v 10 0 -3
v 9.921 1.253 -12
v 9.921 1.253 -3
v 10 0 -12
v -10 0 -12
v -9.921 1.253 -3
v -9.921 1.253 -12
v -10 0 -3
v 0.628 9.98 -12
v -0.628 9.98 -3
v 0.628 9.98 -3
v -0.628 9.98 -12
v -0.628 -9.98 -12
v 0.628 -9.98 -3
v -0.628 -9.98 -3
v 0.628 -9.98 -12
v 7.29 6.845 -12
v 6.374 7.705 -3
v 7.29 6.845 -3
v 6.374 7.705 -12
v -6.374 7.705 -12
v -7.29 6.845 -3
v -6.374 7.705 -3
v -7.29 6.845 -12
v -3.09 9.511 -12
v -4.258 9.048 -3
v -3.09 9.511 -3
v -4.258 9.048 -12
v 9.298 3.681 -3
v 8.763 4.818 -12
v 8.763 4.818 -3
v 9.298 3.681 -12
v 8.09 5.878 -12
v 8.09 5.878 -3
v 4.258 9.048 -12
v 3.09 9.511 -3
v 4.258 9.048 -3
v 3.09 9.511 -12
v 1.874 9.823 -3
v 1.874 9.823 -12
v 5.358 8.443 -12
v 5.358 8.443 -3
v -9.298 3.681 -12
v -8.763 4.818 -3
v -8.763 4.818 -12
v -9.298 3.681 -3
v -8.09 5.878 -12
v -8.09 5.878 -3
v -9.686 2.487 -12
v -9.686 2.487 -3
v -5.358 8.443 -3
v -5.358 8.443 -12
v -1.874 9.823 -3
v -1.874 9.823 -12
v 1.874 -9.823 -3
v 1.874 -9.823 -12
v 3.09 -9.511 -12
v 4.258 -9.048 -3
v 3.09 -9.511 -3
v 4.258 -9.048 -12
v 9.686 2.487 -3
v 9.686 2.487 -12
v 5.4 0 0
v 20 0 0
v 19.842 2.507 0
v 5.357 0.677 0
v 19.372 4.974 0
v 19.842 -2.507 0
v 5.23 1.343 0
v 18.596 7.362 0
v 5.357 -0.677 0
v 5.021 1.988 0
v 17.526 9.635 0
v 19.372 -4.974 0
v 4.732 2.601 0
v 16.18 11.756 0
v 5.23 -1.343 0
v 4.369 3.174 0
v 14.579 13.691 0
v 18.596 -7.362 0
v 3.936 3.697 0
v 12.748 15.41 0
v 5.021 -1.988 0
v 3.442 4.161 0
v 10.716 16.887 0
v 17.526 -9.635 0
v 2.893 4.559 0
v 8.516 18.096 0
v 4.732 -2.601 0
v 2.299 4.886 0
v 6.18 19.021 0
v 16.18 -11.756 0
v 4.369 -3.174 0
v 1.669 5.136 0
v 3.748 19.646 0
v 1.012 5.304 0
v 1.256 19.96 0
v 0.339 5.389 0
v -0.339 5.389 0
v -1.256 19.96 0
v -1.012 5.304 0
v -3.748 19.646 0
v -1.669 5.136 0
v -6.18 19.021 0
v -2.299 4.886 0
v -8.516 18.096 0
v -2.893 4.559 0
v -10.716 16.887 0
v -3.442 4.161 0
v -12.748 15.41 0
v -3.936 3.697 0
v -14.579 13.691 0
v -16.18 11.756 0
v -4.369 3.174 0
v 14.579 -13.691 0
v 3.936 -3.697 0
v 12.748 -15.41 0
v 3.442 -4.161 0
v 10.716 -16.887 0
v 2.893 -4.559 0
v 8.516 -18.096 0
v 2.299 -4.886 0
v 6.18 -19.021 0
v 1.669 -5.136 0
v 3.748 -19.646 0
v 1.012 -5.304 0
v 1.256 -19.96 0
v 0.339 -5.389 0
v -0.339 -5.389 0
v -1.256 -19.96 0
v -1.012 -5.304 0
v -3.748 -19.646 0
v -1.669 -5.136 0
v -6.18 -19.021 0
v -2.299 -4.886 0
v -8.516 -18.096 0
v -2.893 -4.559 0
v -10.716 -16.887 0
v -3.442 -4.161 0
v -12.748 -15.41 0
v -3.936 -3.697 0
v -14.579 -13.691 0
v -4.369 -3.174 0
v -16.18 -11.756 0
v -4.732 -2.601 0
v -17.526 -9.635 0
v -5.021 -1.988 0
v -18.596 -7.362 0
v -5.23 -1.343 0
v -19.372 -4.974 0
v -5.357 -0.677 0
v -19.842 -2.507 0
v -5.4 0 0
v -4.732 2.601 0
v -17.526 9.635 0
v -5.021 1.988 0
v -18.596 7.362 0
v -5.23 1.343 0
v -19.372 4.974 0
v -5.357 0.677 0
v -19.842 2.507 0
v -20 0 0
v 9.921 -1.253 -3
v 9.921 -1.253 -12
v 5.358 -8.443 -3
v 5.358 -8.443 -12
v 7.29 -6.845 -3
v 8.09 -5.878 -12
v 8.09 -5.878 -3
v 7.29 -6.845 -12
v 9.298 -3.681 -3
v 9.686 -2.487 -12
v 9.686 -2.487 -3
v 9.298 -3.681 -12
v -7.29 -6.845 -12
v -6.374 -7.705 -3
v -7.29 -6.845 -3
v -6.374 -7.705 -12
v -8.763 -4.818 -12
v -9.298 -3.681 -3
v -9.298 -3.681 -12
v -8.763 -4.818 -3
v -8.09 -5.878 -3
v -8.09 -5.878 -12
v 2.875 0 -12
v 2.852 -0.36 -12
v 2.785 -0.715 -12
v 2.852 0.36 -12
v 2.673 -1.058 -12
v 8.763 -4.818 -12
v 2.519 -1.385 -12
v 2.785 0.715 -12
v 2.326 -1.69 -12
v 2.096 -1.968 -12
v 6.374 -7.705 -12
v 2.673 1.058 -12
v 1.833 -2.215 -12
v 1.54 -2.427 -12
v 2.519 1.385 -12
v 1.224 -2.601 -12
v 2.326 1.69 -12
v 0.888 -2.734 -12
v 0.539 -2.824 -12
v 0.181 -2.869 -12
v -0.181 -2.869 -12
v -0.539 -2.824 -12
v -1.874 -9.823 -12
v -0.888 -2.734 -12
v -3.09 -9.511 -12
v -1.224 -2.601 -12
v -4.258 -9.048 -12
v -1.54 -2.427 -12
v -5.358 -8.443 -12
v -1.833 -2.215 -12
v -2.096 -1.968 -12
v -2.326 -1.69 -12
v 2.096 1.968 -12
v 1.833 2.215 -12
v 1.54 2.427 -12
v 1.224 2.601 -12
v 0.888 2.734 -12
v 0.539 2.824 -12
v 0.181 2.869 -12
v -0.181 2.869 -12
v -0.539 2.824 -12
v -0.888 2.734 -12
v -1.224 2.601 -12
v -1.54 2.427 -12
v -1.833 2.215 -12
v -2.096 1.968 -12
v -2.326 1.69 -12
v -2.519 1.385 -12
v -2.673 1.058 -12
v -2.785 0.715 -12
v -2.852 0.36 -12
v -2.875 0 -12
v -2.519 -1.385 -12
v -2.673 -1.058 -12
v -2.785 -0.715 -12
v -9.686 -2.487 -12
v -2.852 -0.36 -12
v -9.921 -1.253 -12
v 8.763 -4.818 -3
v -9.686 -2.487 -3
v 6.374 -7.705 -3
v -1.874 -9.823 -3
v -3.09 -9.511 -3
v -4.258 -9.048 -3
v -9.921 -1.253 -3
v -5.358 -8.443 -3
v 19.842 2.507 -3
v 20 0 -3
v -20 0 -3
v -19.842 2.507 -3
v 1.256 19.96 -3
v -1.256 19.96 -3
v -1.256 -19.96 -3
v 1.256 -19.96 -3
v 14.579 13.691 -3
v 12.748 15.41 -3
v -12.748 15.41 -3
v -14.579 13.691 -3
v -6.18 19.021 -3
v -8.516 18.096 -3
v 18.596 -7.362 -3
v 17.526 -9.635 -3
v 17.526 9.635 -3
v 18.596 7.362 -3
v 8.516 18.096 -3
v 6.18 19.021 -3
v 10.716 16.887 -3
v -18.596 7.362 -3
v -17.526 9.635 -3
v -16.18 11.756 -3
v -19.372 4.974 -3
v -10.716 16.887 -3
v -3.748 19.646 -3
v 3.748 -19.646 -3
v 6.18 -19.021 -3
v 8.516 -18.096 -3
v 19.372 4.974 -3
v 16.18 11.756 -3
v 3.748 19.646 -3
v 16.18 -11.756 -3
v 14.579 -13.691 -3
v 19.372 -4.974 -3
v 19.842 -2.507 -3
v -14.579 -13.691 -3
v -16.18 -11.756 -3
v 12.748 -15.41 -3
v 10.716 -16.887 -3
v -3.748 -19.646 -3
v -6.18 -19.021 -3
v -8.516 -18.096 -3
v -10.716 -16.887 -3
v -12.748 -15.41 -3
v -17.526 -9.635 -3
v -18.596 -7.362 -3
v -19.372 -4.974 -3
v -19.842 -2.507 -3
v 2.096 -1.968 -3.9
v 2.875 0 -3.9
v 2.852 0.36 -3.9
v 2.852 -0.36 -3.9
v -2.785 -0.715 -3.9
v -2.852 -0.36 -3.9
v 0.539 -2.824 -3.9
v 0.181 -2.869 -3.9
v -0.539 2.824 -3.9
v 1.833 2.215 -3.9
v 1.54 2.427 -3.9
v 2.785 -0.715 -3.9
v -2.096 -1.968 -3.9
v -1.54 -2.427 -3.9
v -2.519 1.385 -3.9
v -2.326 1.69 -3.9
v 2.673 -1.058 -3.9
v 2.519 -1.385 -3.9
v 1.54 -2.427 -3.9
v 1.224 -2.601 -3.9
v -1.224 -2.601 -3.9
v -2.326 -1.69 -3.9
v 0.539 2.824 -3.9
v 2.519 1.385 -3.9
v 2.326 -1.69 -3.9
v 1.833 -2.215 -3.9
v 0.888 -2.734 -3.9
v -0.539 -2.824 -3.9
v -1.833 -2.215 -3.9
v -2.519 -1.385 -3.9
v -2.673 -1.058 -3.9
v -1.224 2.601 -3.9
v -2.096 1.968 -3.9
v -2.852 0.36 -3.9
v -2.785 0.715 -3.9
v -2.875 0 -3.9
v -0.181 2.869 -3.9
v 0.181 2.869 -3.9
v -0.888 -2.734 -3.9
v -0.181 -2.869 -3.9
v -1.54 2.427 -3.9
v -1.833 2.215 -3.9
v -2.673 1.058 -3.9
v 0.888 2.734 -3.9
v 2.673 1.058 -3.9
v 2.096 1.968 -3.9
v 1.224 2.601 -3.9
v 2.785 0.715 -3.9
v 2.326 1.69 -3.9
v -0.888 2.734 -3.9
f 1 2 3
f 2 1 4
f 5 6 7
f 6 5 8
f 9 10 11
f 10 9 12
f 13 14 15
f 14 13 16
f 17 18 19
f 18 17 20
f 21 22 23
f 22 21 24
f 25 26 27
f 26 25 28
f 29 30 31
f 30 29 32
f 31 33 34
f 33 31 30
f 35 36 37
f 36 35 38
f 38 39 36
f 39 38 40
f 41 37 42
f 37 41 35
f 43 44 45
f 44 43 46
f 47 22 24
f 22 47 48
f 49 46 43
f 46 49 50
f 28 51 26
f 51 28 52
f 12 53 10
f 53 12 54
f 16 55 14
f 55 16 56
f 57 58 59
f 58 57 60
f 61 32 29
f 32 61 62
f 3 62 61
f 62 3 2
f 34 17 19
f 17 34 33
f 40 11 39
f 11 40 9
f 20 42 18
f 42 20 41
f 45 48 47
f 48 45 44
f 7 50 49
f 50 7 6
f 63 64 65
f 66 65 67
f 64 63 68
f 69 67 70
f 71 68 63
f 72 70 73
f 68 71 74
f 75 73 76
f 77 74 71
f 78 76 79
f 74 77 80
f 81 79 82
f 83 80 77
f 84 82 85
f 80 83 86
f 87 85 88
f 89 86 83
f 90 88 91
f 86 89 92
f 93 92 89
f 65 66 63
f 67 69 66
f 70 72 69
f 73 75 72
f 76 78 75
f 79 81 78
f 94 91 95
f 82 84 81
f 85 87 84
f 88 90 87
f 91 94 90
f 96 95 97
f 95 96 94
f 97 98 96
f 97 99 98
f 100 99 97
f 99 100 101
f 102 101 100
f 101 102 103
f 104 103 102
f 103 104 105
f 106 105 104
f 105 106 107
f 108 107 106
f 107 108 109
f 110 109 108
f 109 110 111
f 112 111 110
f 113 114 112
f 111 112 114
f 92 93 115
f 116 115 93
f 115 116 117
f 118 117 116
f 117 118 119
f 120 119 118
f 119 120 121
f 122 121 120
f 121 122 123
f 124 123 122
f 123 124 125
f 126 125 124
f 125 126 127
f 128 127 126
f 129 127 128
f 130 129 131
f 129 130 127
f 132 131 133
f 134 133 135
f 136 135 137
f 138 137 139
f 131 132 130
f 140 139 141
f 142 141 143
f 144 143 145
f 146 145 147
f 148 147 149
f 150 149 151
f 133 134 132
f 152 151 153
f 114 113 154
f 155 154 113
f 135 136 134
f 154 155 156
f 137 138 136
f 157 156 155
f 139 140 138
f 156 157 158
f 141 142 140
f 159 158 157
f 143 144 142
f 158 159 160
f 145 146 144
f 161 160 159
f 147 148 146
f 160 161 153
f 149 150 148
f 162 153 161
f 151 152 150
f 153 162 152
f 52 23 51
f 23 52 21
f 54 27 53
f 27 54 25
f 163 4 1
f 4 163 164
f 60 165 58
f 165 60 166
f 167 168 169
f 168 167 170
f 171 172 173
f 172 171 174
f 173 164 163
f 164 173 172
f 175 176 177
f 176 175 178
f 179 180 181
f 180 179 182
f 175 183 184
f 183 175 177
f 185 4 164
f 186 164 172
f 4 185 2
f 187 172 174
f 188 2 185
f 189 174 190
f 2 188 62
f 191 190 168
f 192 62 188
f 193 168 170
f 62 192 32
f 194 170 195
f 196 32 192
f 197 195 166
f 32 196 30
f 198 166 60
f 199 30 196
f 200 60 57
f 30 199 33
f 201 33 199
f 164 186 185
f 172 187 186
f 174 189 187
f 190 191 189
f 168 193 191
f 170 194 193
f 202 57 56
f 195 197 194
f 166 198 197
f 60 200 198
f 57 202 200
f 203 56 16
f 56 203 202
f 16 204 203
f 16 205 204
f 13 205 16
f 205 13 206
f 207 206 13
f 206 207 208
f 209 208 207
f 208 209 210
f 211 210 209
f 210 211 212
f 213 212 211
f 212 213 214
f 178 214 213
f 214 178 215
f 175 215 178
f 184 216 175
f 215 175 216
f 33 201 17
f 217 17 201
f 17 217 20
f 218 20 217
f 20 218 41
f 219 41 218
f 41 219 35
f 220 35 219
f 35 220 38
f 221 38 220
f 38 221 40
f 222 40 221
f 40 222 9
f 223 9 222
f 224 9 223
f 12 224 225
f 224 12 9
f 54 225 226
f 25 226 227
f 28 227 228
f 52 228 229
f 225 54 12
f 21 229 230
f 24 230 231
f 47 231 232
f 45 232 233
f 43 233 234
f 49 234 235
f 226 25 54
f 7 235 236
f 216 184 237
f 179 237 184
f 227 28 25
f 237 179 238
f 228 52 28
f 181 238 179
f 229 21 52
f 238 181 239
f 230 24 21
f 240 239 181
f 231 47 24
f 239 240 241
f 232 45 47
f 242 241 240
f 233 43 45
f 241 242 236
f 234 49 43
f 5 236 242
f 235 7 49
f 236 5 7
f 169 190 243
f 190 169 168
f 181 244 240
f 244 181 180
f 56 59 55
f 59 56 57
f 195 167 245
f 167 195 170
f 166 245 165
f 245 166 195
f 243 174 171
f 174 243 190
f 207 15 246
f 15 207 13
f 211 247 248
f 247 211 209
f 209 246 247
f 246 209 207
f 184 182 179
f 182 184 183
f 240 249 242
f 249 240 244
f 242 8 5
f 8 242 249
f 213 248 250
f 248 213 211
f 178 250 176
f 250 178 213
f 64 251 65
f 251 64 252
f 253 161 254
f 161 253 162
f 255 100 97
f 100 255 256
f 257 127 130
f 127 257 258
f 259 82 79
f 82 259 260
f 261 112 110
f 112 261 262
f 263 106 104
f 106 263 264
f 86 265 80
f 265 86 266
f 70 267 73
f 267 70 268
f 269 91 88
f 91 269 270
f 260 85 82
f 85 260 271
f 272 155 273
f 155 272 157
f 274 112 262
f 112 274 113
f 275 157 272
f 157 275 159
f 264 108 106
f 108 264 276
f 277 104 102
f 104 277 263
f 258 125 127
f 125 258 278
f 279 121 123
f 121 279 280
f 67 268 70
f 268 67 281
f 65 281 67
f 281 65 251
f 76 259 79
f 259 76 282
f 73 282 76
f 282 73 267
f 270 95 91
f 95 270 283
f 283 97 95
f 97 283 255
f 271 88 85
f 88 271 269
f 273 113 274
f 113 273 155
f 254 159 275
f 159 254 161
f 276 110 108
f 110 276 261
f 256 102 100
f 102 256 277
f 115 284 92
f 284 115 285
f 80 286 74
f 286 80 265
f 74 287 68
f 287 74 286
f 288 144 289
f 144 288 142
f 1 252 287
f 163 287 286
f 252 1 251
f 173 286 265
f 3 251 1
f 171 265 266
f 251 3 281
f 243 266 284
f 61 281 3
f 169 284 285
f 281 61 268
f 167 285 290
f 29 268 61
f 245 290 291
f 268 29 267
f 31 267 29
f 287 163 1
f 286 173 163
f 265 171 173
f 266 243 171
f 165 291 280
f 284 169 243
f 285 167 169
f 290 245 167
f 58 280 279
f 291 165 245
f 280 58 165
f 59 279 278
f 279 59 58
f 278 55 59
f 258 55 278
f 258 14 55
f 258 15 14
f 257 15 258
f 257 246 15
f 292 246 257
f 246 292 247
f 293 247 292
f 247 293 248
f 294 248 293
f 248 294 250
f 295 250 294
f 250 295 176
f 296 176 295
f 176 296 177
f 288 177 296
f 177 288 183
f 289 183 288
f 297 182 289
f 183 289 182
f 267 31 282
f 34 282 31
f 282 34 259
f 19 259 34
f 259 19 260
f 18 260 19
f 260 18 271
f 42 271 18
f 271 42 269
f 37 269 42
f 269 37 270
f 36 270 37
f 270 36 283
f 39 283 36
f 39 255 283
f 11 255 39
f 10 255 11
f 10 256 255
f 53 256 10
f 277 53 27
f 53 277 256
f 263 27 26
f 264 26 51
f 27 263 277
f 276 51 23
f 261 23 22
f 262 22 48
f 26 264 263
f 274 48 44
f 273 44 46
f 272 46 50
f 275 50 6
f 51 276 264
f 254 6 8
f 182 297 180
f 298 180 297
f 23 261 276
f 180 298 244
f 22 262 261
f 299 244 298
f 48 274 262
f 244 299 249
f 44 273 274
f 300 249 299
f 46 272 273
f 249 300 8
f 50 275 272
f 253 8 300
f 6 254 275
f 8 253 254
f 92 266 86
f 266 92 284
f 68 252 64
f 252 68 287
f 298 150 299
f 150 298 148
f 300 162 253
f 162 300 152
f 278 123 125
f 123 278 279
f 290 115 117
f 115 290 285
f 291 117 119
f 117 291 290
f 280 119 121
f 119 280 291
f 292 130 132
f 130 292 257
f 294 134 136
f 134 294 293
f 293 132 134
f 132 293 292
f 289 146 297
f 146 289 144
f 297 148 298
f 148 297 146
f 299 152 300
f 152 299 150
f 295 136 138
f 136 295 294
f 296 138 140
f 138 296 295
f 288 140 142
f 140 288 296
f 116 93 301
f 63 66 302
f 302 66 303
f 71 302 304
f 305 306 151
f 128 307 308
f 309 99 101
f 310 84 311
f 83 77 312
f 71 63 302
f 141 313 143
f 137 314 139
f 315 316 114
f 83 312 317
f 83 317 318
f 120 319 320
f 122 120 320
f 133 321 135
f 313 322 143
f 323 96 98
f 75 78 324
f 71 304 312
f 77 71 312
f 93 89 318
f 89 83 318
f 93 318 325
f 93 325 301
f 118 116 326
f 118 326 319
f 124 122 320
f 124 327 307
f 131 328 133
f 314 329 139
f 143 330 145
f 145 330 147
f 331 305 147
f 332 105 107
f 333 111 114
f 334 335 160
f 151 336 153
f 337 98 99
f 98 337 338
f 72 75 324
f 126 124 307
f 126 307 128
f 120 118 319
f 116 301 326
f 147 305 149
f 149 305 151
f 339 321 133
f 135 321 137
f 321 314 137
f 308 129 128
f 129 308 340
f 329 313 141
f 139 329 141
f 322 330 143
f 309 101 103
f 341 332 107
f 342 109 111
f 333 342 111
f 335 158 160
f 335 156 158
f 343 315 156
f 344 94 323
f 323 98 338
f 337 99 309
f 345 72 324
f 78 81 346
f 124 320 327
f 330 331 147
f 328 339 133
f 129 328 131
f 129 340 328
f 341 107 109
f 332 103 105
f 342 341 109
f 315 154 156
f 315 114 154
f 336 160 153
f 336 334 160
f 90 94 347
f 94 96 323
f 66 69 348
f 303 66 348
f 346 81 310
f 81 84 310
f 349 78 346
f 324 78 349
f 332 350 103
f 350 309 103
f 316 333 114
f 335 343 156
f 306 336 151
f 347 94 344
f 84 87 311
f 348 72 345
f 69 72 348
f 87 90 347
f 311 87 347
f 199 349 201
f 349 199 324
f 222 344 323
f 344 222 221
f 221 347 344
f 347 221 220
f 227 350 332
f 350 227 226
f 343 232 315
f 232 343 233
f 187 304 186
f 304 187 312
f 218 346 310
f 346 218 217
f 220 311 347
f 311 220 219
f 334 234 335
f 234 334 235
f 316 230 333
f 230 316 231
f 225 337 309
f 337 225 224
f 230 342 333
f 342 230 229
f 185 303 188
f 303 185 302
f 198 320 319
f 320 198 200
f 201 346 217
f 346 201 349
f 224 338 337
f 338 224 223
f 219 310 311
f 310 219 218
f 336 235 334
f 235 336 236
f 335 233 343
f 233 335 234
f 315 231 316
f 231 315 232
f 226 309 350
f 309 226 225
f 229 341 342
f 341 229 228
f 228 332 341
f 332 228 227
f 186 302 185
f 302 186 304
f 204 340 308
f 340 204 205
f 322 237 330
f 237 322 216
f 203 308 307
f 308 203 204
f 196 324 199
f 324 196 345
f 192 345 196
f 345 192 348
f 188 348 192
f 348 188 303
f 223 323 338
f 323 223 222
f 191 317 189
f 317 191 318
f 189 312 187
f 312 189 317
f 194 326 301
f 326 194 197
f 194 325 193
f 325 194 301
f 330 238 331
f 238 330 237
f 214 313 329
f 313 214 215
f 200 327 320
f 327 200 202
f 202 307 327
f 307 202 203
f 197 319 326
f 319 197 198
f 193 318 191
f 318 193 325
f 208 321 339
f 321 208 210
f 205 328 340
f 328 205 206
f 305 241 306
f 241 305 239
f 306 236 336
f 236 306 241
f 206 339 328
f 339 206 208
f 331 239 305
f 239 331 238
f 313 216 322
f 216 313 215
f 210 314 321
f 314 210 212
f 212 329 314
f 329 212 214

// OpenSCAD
$fn = 50;


difference() {
	union() {
		translate(v = [0, 0, -12.0000000000]) {
			cylinder(h = 12, r = 10.0000000000);
		}
		translate(v = [0, 0, -3.0000000000]) {
			cylinder(h = 3, r = 20.0000000000);
		}
	}
	union() {
		translate(v = [0, 0, 0]) {
			rotate(a = [0, 0, 0]) {
				difference() {
					union() {
						#translate(v = [0, 0, -12.0000000000]) {
							cylinder(h = 12, r = 2.6000000000);
						}
						#translate(v = [0, 0, -3.9000000000]) {
							cylinder(h = 3.9000000000, r = 10.0000000000, r1 = 2.8750000000, r2 = 5.4000000000);
						}
						#translate(v = [0, 0, -12.0000000000]) {
							cylinder(h = 12, r = 2.8750000000);
						}
						#translate(v = [0, 0, -12.0000000000]) {
							cylinder(h = 12, r = 2.6000000000);
						}
					}
					union();
				}
			}
		}
	}
}
